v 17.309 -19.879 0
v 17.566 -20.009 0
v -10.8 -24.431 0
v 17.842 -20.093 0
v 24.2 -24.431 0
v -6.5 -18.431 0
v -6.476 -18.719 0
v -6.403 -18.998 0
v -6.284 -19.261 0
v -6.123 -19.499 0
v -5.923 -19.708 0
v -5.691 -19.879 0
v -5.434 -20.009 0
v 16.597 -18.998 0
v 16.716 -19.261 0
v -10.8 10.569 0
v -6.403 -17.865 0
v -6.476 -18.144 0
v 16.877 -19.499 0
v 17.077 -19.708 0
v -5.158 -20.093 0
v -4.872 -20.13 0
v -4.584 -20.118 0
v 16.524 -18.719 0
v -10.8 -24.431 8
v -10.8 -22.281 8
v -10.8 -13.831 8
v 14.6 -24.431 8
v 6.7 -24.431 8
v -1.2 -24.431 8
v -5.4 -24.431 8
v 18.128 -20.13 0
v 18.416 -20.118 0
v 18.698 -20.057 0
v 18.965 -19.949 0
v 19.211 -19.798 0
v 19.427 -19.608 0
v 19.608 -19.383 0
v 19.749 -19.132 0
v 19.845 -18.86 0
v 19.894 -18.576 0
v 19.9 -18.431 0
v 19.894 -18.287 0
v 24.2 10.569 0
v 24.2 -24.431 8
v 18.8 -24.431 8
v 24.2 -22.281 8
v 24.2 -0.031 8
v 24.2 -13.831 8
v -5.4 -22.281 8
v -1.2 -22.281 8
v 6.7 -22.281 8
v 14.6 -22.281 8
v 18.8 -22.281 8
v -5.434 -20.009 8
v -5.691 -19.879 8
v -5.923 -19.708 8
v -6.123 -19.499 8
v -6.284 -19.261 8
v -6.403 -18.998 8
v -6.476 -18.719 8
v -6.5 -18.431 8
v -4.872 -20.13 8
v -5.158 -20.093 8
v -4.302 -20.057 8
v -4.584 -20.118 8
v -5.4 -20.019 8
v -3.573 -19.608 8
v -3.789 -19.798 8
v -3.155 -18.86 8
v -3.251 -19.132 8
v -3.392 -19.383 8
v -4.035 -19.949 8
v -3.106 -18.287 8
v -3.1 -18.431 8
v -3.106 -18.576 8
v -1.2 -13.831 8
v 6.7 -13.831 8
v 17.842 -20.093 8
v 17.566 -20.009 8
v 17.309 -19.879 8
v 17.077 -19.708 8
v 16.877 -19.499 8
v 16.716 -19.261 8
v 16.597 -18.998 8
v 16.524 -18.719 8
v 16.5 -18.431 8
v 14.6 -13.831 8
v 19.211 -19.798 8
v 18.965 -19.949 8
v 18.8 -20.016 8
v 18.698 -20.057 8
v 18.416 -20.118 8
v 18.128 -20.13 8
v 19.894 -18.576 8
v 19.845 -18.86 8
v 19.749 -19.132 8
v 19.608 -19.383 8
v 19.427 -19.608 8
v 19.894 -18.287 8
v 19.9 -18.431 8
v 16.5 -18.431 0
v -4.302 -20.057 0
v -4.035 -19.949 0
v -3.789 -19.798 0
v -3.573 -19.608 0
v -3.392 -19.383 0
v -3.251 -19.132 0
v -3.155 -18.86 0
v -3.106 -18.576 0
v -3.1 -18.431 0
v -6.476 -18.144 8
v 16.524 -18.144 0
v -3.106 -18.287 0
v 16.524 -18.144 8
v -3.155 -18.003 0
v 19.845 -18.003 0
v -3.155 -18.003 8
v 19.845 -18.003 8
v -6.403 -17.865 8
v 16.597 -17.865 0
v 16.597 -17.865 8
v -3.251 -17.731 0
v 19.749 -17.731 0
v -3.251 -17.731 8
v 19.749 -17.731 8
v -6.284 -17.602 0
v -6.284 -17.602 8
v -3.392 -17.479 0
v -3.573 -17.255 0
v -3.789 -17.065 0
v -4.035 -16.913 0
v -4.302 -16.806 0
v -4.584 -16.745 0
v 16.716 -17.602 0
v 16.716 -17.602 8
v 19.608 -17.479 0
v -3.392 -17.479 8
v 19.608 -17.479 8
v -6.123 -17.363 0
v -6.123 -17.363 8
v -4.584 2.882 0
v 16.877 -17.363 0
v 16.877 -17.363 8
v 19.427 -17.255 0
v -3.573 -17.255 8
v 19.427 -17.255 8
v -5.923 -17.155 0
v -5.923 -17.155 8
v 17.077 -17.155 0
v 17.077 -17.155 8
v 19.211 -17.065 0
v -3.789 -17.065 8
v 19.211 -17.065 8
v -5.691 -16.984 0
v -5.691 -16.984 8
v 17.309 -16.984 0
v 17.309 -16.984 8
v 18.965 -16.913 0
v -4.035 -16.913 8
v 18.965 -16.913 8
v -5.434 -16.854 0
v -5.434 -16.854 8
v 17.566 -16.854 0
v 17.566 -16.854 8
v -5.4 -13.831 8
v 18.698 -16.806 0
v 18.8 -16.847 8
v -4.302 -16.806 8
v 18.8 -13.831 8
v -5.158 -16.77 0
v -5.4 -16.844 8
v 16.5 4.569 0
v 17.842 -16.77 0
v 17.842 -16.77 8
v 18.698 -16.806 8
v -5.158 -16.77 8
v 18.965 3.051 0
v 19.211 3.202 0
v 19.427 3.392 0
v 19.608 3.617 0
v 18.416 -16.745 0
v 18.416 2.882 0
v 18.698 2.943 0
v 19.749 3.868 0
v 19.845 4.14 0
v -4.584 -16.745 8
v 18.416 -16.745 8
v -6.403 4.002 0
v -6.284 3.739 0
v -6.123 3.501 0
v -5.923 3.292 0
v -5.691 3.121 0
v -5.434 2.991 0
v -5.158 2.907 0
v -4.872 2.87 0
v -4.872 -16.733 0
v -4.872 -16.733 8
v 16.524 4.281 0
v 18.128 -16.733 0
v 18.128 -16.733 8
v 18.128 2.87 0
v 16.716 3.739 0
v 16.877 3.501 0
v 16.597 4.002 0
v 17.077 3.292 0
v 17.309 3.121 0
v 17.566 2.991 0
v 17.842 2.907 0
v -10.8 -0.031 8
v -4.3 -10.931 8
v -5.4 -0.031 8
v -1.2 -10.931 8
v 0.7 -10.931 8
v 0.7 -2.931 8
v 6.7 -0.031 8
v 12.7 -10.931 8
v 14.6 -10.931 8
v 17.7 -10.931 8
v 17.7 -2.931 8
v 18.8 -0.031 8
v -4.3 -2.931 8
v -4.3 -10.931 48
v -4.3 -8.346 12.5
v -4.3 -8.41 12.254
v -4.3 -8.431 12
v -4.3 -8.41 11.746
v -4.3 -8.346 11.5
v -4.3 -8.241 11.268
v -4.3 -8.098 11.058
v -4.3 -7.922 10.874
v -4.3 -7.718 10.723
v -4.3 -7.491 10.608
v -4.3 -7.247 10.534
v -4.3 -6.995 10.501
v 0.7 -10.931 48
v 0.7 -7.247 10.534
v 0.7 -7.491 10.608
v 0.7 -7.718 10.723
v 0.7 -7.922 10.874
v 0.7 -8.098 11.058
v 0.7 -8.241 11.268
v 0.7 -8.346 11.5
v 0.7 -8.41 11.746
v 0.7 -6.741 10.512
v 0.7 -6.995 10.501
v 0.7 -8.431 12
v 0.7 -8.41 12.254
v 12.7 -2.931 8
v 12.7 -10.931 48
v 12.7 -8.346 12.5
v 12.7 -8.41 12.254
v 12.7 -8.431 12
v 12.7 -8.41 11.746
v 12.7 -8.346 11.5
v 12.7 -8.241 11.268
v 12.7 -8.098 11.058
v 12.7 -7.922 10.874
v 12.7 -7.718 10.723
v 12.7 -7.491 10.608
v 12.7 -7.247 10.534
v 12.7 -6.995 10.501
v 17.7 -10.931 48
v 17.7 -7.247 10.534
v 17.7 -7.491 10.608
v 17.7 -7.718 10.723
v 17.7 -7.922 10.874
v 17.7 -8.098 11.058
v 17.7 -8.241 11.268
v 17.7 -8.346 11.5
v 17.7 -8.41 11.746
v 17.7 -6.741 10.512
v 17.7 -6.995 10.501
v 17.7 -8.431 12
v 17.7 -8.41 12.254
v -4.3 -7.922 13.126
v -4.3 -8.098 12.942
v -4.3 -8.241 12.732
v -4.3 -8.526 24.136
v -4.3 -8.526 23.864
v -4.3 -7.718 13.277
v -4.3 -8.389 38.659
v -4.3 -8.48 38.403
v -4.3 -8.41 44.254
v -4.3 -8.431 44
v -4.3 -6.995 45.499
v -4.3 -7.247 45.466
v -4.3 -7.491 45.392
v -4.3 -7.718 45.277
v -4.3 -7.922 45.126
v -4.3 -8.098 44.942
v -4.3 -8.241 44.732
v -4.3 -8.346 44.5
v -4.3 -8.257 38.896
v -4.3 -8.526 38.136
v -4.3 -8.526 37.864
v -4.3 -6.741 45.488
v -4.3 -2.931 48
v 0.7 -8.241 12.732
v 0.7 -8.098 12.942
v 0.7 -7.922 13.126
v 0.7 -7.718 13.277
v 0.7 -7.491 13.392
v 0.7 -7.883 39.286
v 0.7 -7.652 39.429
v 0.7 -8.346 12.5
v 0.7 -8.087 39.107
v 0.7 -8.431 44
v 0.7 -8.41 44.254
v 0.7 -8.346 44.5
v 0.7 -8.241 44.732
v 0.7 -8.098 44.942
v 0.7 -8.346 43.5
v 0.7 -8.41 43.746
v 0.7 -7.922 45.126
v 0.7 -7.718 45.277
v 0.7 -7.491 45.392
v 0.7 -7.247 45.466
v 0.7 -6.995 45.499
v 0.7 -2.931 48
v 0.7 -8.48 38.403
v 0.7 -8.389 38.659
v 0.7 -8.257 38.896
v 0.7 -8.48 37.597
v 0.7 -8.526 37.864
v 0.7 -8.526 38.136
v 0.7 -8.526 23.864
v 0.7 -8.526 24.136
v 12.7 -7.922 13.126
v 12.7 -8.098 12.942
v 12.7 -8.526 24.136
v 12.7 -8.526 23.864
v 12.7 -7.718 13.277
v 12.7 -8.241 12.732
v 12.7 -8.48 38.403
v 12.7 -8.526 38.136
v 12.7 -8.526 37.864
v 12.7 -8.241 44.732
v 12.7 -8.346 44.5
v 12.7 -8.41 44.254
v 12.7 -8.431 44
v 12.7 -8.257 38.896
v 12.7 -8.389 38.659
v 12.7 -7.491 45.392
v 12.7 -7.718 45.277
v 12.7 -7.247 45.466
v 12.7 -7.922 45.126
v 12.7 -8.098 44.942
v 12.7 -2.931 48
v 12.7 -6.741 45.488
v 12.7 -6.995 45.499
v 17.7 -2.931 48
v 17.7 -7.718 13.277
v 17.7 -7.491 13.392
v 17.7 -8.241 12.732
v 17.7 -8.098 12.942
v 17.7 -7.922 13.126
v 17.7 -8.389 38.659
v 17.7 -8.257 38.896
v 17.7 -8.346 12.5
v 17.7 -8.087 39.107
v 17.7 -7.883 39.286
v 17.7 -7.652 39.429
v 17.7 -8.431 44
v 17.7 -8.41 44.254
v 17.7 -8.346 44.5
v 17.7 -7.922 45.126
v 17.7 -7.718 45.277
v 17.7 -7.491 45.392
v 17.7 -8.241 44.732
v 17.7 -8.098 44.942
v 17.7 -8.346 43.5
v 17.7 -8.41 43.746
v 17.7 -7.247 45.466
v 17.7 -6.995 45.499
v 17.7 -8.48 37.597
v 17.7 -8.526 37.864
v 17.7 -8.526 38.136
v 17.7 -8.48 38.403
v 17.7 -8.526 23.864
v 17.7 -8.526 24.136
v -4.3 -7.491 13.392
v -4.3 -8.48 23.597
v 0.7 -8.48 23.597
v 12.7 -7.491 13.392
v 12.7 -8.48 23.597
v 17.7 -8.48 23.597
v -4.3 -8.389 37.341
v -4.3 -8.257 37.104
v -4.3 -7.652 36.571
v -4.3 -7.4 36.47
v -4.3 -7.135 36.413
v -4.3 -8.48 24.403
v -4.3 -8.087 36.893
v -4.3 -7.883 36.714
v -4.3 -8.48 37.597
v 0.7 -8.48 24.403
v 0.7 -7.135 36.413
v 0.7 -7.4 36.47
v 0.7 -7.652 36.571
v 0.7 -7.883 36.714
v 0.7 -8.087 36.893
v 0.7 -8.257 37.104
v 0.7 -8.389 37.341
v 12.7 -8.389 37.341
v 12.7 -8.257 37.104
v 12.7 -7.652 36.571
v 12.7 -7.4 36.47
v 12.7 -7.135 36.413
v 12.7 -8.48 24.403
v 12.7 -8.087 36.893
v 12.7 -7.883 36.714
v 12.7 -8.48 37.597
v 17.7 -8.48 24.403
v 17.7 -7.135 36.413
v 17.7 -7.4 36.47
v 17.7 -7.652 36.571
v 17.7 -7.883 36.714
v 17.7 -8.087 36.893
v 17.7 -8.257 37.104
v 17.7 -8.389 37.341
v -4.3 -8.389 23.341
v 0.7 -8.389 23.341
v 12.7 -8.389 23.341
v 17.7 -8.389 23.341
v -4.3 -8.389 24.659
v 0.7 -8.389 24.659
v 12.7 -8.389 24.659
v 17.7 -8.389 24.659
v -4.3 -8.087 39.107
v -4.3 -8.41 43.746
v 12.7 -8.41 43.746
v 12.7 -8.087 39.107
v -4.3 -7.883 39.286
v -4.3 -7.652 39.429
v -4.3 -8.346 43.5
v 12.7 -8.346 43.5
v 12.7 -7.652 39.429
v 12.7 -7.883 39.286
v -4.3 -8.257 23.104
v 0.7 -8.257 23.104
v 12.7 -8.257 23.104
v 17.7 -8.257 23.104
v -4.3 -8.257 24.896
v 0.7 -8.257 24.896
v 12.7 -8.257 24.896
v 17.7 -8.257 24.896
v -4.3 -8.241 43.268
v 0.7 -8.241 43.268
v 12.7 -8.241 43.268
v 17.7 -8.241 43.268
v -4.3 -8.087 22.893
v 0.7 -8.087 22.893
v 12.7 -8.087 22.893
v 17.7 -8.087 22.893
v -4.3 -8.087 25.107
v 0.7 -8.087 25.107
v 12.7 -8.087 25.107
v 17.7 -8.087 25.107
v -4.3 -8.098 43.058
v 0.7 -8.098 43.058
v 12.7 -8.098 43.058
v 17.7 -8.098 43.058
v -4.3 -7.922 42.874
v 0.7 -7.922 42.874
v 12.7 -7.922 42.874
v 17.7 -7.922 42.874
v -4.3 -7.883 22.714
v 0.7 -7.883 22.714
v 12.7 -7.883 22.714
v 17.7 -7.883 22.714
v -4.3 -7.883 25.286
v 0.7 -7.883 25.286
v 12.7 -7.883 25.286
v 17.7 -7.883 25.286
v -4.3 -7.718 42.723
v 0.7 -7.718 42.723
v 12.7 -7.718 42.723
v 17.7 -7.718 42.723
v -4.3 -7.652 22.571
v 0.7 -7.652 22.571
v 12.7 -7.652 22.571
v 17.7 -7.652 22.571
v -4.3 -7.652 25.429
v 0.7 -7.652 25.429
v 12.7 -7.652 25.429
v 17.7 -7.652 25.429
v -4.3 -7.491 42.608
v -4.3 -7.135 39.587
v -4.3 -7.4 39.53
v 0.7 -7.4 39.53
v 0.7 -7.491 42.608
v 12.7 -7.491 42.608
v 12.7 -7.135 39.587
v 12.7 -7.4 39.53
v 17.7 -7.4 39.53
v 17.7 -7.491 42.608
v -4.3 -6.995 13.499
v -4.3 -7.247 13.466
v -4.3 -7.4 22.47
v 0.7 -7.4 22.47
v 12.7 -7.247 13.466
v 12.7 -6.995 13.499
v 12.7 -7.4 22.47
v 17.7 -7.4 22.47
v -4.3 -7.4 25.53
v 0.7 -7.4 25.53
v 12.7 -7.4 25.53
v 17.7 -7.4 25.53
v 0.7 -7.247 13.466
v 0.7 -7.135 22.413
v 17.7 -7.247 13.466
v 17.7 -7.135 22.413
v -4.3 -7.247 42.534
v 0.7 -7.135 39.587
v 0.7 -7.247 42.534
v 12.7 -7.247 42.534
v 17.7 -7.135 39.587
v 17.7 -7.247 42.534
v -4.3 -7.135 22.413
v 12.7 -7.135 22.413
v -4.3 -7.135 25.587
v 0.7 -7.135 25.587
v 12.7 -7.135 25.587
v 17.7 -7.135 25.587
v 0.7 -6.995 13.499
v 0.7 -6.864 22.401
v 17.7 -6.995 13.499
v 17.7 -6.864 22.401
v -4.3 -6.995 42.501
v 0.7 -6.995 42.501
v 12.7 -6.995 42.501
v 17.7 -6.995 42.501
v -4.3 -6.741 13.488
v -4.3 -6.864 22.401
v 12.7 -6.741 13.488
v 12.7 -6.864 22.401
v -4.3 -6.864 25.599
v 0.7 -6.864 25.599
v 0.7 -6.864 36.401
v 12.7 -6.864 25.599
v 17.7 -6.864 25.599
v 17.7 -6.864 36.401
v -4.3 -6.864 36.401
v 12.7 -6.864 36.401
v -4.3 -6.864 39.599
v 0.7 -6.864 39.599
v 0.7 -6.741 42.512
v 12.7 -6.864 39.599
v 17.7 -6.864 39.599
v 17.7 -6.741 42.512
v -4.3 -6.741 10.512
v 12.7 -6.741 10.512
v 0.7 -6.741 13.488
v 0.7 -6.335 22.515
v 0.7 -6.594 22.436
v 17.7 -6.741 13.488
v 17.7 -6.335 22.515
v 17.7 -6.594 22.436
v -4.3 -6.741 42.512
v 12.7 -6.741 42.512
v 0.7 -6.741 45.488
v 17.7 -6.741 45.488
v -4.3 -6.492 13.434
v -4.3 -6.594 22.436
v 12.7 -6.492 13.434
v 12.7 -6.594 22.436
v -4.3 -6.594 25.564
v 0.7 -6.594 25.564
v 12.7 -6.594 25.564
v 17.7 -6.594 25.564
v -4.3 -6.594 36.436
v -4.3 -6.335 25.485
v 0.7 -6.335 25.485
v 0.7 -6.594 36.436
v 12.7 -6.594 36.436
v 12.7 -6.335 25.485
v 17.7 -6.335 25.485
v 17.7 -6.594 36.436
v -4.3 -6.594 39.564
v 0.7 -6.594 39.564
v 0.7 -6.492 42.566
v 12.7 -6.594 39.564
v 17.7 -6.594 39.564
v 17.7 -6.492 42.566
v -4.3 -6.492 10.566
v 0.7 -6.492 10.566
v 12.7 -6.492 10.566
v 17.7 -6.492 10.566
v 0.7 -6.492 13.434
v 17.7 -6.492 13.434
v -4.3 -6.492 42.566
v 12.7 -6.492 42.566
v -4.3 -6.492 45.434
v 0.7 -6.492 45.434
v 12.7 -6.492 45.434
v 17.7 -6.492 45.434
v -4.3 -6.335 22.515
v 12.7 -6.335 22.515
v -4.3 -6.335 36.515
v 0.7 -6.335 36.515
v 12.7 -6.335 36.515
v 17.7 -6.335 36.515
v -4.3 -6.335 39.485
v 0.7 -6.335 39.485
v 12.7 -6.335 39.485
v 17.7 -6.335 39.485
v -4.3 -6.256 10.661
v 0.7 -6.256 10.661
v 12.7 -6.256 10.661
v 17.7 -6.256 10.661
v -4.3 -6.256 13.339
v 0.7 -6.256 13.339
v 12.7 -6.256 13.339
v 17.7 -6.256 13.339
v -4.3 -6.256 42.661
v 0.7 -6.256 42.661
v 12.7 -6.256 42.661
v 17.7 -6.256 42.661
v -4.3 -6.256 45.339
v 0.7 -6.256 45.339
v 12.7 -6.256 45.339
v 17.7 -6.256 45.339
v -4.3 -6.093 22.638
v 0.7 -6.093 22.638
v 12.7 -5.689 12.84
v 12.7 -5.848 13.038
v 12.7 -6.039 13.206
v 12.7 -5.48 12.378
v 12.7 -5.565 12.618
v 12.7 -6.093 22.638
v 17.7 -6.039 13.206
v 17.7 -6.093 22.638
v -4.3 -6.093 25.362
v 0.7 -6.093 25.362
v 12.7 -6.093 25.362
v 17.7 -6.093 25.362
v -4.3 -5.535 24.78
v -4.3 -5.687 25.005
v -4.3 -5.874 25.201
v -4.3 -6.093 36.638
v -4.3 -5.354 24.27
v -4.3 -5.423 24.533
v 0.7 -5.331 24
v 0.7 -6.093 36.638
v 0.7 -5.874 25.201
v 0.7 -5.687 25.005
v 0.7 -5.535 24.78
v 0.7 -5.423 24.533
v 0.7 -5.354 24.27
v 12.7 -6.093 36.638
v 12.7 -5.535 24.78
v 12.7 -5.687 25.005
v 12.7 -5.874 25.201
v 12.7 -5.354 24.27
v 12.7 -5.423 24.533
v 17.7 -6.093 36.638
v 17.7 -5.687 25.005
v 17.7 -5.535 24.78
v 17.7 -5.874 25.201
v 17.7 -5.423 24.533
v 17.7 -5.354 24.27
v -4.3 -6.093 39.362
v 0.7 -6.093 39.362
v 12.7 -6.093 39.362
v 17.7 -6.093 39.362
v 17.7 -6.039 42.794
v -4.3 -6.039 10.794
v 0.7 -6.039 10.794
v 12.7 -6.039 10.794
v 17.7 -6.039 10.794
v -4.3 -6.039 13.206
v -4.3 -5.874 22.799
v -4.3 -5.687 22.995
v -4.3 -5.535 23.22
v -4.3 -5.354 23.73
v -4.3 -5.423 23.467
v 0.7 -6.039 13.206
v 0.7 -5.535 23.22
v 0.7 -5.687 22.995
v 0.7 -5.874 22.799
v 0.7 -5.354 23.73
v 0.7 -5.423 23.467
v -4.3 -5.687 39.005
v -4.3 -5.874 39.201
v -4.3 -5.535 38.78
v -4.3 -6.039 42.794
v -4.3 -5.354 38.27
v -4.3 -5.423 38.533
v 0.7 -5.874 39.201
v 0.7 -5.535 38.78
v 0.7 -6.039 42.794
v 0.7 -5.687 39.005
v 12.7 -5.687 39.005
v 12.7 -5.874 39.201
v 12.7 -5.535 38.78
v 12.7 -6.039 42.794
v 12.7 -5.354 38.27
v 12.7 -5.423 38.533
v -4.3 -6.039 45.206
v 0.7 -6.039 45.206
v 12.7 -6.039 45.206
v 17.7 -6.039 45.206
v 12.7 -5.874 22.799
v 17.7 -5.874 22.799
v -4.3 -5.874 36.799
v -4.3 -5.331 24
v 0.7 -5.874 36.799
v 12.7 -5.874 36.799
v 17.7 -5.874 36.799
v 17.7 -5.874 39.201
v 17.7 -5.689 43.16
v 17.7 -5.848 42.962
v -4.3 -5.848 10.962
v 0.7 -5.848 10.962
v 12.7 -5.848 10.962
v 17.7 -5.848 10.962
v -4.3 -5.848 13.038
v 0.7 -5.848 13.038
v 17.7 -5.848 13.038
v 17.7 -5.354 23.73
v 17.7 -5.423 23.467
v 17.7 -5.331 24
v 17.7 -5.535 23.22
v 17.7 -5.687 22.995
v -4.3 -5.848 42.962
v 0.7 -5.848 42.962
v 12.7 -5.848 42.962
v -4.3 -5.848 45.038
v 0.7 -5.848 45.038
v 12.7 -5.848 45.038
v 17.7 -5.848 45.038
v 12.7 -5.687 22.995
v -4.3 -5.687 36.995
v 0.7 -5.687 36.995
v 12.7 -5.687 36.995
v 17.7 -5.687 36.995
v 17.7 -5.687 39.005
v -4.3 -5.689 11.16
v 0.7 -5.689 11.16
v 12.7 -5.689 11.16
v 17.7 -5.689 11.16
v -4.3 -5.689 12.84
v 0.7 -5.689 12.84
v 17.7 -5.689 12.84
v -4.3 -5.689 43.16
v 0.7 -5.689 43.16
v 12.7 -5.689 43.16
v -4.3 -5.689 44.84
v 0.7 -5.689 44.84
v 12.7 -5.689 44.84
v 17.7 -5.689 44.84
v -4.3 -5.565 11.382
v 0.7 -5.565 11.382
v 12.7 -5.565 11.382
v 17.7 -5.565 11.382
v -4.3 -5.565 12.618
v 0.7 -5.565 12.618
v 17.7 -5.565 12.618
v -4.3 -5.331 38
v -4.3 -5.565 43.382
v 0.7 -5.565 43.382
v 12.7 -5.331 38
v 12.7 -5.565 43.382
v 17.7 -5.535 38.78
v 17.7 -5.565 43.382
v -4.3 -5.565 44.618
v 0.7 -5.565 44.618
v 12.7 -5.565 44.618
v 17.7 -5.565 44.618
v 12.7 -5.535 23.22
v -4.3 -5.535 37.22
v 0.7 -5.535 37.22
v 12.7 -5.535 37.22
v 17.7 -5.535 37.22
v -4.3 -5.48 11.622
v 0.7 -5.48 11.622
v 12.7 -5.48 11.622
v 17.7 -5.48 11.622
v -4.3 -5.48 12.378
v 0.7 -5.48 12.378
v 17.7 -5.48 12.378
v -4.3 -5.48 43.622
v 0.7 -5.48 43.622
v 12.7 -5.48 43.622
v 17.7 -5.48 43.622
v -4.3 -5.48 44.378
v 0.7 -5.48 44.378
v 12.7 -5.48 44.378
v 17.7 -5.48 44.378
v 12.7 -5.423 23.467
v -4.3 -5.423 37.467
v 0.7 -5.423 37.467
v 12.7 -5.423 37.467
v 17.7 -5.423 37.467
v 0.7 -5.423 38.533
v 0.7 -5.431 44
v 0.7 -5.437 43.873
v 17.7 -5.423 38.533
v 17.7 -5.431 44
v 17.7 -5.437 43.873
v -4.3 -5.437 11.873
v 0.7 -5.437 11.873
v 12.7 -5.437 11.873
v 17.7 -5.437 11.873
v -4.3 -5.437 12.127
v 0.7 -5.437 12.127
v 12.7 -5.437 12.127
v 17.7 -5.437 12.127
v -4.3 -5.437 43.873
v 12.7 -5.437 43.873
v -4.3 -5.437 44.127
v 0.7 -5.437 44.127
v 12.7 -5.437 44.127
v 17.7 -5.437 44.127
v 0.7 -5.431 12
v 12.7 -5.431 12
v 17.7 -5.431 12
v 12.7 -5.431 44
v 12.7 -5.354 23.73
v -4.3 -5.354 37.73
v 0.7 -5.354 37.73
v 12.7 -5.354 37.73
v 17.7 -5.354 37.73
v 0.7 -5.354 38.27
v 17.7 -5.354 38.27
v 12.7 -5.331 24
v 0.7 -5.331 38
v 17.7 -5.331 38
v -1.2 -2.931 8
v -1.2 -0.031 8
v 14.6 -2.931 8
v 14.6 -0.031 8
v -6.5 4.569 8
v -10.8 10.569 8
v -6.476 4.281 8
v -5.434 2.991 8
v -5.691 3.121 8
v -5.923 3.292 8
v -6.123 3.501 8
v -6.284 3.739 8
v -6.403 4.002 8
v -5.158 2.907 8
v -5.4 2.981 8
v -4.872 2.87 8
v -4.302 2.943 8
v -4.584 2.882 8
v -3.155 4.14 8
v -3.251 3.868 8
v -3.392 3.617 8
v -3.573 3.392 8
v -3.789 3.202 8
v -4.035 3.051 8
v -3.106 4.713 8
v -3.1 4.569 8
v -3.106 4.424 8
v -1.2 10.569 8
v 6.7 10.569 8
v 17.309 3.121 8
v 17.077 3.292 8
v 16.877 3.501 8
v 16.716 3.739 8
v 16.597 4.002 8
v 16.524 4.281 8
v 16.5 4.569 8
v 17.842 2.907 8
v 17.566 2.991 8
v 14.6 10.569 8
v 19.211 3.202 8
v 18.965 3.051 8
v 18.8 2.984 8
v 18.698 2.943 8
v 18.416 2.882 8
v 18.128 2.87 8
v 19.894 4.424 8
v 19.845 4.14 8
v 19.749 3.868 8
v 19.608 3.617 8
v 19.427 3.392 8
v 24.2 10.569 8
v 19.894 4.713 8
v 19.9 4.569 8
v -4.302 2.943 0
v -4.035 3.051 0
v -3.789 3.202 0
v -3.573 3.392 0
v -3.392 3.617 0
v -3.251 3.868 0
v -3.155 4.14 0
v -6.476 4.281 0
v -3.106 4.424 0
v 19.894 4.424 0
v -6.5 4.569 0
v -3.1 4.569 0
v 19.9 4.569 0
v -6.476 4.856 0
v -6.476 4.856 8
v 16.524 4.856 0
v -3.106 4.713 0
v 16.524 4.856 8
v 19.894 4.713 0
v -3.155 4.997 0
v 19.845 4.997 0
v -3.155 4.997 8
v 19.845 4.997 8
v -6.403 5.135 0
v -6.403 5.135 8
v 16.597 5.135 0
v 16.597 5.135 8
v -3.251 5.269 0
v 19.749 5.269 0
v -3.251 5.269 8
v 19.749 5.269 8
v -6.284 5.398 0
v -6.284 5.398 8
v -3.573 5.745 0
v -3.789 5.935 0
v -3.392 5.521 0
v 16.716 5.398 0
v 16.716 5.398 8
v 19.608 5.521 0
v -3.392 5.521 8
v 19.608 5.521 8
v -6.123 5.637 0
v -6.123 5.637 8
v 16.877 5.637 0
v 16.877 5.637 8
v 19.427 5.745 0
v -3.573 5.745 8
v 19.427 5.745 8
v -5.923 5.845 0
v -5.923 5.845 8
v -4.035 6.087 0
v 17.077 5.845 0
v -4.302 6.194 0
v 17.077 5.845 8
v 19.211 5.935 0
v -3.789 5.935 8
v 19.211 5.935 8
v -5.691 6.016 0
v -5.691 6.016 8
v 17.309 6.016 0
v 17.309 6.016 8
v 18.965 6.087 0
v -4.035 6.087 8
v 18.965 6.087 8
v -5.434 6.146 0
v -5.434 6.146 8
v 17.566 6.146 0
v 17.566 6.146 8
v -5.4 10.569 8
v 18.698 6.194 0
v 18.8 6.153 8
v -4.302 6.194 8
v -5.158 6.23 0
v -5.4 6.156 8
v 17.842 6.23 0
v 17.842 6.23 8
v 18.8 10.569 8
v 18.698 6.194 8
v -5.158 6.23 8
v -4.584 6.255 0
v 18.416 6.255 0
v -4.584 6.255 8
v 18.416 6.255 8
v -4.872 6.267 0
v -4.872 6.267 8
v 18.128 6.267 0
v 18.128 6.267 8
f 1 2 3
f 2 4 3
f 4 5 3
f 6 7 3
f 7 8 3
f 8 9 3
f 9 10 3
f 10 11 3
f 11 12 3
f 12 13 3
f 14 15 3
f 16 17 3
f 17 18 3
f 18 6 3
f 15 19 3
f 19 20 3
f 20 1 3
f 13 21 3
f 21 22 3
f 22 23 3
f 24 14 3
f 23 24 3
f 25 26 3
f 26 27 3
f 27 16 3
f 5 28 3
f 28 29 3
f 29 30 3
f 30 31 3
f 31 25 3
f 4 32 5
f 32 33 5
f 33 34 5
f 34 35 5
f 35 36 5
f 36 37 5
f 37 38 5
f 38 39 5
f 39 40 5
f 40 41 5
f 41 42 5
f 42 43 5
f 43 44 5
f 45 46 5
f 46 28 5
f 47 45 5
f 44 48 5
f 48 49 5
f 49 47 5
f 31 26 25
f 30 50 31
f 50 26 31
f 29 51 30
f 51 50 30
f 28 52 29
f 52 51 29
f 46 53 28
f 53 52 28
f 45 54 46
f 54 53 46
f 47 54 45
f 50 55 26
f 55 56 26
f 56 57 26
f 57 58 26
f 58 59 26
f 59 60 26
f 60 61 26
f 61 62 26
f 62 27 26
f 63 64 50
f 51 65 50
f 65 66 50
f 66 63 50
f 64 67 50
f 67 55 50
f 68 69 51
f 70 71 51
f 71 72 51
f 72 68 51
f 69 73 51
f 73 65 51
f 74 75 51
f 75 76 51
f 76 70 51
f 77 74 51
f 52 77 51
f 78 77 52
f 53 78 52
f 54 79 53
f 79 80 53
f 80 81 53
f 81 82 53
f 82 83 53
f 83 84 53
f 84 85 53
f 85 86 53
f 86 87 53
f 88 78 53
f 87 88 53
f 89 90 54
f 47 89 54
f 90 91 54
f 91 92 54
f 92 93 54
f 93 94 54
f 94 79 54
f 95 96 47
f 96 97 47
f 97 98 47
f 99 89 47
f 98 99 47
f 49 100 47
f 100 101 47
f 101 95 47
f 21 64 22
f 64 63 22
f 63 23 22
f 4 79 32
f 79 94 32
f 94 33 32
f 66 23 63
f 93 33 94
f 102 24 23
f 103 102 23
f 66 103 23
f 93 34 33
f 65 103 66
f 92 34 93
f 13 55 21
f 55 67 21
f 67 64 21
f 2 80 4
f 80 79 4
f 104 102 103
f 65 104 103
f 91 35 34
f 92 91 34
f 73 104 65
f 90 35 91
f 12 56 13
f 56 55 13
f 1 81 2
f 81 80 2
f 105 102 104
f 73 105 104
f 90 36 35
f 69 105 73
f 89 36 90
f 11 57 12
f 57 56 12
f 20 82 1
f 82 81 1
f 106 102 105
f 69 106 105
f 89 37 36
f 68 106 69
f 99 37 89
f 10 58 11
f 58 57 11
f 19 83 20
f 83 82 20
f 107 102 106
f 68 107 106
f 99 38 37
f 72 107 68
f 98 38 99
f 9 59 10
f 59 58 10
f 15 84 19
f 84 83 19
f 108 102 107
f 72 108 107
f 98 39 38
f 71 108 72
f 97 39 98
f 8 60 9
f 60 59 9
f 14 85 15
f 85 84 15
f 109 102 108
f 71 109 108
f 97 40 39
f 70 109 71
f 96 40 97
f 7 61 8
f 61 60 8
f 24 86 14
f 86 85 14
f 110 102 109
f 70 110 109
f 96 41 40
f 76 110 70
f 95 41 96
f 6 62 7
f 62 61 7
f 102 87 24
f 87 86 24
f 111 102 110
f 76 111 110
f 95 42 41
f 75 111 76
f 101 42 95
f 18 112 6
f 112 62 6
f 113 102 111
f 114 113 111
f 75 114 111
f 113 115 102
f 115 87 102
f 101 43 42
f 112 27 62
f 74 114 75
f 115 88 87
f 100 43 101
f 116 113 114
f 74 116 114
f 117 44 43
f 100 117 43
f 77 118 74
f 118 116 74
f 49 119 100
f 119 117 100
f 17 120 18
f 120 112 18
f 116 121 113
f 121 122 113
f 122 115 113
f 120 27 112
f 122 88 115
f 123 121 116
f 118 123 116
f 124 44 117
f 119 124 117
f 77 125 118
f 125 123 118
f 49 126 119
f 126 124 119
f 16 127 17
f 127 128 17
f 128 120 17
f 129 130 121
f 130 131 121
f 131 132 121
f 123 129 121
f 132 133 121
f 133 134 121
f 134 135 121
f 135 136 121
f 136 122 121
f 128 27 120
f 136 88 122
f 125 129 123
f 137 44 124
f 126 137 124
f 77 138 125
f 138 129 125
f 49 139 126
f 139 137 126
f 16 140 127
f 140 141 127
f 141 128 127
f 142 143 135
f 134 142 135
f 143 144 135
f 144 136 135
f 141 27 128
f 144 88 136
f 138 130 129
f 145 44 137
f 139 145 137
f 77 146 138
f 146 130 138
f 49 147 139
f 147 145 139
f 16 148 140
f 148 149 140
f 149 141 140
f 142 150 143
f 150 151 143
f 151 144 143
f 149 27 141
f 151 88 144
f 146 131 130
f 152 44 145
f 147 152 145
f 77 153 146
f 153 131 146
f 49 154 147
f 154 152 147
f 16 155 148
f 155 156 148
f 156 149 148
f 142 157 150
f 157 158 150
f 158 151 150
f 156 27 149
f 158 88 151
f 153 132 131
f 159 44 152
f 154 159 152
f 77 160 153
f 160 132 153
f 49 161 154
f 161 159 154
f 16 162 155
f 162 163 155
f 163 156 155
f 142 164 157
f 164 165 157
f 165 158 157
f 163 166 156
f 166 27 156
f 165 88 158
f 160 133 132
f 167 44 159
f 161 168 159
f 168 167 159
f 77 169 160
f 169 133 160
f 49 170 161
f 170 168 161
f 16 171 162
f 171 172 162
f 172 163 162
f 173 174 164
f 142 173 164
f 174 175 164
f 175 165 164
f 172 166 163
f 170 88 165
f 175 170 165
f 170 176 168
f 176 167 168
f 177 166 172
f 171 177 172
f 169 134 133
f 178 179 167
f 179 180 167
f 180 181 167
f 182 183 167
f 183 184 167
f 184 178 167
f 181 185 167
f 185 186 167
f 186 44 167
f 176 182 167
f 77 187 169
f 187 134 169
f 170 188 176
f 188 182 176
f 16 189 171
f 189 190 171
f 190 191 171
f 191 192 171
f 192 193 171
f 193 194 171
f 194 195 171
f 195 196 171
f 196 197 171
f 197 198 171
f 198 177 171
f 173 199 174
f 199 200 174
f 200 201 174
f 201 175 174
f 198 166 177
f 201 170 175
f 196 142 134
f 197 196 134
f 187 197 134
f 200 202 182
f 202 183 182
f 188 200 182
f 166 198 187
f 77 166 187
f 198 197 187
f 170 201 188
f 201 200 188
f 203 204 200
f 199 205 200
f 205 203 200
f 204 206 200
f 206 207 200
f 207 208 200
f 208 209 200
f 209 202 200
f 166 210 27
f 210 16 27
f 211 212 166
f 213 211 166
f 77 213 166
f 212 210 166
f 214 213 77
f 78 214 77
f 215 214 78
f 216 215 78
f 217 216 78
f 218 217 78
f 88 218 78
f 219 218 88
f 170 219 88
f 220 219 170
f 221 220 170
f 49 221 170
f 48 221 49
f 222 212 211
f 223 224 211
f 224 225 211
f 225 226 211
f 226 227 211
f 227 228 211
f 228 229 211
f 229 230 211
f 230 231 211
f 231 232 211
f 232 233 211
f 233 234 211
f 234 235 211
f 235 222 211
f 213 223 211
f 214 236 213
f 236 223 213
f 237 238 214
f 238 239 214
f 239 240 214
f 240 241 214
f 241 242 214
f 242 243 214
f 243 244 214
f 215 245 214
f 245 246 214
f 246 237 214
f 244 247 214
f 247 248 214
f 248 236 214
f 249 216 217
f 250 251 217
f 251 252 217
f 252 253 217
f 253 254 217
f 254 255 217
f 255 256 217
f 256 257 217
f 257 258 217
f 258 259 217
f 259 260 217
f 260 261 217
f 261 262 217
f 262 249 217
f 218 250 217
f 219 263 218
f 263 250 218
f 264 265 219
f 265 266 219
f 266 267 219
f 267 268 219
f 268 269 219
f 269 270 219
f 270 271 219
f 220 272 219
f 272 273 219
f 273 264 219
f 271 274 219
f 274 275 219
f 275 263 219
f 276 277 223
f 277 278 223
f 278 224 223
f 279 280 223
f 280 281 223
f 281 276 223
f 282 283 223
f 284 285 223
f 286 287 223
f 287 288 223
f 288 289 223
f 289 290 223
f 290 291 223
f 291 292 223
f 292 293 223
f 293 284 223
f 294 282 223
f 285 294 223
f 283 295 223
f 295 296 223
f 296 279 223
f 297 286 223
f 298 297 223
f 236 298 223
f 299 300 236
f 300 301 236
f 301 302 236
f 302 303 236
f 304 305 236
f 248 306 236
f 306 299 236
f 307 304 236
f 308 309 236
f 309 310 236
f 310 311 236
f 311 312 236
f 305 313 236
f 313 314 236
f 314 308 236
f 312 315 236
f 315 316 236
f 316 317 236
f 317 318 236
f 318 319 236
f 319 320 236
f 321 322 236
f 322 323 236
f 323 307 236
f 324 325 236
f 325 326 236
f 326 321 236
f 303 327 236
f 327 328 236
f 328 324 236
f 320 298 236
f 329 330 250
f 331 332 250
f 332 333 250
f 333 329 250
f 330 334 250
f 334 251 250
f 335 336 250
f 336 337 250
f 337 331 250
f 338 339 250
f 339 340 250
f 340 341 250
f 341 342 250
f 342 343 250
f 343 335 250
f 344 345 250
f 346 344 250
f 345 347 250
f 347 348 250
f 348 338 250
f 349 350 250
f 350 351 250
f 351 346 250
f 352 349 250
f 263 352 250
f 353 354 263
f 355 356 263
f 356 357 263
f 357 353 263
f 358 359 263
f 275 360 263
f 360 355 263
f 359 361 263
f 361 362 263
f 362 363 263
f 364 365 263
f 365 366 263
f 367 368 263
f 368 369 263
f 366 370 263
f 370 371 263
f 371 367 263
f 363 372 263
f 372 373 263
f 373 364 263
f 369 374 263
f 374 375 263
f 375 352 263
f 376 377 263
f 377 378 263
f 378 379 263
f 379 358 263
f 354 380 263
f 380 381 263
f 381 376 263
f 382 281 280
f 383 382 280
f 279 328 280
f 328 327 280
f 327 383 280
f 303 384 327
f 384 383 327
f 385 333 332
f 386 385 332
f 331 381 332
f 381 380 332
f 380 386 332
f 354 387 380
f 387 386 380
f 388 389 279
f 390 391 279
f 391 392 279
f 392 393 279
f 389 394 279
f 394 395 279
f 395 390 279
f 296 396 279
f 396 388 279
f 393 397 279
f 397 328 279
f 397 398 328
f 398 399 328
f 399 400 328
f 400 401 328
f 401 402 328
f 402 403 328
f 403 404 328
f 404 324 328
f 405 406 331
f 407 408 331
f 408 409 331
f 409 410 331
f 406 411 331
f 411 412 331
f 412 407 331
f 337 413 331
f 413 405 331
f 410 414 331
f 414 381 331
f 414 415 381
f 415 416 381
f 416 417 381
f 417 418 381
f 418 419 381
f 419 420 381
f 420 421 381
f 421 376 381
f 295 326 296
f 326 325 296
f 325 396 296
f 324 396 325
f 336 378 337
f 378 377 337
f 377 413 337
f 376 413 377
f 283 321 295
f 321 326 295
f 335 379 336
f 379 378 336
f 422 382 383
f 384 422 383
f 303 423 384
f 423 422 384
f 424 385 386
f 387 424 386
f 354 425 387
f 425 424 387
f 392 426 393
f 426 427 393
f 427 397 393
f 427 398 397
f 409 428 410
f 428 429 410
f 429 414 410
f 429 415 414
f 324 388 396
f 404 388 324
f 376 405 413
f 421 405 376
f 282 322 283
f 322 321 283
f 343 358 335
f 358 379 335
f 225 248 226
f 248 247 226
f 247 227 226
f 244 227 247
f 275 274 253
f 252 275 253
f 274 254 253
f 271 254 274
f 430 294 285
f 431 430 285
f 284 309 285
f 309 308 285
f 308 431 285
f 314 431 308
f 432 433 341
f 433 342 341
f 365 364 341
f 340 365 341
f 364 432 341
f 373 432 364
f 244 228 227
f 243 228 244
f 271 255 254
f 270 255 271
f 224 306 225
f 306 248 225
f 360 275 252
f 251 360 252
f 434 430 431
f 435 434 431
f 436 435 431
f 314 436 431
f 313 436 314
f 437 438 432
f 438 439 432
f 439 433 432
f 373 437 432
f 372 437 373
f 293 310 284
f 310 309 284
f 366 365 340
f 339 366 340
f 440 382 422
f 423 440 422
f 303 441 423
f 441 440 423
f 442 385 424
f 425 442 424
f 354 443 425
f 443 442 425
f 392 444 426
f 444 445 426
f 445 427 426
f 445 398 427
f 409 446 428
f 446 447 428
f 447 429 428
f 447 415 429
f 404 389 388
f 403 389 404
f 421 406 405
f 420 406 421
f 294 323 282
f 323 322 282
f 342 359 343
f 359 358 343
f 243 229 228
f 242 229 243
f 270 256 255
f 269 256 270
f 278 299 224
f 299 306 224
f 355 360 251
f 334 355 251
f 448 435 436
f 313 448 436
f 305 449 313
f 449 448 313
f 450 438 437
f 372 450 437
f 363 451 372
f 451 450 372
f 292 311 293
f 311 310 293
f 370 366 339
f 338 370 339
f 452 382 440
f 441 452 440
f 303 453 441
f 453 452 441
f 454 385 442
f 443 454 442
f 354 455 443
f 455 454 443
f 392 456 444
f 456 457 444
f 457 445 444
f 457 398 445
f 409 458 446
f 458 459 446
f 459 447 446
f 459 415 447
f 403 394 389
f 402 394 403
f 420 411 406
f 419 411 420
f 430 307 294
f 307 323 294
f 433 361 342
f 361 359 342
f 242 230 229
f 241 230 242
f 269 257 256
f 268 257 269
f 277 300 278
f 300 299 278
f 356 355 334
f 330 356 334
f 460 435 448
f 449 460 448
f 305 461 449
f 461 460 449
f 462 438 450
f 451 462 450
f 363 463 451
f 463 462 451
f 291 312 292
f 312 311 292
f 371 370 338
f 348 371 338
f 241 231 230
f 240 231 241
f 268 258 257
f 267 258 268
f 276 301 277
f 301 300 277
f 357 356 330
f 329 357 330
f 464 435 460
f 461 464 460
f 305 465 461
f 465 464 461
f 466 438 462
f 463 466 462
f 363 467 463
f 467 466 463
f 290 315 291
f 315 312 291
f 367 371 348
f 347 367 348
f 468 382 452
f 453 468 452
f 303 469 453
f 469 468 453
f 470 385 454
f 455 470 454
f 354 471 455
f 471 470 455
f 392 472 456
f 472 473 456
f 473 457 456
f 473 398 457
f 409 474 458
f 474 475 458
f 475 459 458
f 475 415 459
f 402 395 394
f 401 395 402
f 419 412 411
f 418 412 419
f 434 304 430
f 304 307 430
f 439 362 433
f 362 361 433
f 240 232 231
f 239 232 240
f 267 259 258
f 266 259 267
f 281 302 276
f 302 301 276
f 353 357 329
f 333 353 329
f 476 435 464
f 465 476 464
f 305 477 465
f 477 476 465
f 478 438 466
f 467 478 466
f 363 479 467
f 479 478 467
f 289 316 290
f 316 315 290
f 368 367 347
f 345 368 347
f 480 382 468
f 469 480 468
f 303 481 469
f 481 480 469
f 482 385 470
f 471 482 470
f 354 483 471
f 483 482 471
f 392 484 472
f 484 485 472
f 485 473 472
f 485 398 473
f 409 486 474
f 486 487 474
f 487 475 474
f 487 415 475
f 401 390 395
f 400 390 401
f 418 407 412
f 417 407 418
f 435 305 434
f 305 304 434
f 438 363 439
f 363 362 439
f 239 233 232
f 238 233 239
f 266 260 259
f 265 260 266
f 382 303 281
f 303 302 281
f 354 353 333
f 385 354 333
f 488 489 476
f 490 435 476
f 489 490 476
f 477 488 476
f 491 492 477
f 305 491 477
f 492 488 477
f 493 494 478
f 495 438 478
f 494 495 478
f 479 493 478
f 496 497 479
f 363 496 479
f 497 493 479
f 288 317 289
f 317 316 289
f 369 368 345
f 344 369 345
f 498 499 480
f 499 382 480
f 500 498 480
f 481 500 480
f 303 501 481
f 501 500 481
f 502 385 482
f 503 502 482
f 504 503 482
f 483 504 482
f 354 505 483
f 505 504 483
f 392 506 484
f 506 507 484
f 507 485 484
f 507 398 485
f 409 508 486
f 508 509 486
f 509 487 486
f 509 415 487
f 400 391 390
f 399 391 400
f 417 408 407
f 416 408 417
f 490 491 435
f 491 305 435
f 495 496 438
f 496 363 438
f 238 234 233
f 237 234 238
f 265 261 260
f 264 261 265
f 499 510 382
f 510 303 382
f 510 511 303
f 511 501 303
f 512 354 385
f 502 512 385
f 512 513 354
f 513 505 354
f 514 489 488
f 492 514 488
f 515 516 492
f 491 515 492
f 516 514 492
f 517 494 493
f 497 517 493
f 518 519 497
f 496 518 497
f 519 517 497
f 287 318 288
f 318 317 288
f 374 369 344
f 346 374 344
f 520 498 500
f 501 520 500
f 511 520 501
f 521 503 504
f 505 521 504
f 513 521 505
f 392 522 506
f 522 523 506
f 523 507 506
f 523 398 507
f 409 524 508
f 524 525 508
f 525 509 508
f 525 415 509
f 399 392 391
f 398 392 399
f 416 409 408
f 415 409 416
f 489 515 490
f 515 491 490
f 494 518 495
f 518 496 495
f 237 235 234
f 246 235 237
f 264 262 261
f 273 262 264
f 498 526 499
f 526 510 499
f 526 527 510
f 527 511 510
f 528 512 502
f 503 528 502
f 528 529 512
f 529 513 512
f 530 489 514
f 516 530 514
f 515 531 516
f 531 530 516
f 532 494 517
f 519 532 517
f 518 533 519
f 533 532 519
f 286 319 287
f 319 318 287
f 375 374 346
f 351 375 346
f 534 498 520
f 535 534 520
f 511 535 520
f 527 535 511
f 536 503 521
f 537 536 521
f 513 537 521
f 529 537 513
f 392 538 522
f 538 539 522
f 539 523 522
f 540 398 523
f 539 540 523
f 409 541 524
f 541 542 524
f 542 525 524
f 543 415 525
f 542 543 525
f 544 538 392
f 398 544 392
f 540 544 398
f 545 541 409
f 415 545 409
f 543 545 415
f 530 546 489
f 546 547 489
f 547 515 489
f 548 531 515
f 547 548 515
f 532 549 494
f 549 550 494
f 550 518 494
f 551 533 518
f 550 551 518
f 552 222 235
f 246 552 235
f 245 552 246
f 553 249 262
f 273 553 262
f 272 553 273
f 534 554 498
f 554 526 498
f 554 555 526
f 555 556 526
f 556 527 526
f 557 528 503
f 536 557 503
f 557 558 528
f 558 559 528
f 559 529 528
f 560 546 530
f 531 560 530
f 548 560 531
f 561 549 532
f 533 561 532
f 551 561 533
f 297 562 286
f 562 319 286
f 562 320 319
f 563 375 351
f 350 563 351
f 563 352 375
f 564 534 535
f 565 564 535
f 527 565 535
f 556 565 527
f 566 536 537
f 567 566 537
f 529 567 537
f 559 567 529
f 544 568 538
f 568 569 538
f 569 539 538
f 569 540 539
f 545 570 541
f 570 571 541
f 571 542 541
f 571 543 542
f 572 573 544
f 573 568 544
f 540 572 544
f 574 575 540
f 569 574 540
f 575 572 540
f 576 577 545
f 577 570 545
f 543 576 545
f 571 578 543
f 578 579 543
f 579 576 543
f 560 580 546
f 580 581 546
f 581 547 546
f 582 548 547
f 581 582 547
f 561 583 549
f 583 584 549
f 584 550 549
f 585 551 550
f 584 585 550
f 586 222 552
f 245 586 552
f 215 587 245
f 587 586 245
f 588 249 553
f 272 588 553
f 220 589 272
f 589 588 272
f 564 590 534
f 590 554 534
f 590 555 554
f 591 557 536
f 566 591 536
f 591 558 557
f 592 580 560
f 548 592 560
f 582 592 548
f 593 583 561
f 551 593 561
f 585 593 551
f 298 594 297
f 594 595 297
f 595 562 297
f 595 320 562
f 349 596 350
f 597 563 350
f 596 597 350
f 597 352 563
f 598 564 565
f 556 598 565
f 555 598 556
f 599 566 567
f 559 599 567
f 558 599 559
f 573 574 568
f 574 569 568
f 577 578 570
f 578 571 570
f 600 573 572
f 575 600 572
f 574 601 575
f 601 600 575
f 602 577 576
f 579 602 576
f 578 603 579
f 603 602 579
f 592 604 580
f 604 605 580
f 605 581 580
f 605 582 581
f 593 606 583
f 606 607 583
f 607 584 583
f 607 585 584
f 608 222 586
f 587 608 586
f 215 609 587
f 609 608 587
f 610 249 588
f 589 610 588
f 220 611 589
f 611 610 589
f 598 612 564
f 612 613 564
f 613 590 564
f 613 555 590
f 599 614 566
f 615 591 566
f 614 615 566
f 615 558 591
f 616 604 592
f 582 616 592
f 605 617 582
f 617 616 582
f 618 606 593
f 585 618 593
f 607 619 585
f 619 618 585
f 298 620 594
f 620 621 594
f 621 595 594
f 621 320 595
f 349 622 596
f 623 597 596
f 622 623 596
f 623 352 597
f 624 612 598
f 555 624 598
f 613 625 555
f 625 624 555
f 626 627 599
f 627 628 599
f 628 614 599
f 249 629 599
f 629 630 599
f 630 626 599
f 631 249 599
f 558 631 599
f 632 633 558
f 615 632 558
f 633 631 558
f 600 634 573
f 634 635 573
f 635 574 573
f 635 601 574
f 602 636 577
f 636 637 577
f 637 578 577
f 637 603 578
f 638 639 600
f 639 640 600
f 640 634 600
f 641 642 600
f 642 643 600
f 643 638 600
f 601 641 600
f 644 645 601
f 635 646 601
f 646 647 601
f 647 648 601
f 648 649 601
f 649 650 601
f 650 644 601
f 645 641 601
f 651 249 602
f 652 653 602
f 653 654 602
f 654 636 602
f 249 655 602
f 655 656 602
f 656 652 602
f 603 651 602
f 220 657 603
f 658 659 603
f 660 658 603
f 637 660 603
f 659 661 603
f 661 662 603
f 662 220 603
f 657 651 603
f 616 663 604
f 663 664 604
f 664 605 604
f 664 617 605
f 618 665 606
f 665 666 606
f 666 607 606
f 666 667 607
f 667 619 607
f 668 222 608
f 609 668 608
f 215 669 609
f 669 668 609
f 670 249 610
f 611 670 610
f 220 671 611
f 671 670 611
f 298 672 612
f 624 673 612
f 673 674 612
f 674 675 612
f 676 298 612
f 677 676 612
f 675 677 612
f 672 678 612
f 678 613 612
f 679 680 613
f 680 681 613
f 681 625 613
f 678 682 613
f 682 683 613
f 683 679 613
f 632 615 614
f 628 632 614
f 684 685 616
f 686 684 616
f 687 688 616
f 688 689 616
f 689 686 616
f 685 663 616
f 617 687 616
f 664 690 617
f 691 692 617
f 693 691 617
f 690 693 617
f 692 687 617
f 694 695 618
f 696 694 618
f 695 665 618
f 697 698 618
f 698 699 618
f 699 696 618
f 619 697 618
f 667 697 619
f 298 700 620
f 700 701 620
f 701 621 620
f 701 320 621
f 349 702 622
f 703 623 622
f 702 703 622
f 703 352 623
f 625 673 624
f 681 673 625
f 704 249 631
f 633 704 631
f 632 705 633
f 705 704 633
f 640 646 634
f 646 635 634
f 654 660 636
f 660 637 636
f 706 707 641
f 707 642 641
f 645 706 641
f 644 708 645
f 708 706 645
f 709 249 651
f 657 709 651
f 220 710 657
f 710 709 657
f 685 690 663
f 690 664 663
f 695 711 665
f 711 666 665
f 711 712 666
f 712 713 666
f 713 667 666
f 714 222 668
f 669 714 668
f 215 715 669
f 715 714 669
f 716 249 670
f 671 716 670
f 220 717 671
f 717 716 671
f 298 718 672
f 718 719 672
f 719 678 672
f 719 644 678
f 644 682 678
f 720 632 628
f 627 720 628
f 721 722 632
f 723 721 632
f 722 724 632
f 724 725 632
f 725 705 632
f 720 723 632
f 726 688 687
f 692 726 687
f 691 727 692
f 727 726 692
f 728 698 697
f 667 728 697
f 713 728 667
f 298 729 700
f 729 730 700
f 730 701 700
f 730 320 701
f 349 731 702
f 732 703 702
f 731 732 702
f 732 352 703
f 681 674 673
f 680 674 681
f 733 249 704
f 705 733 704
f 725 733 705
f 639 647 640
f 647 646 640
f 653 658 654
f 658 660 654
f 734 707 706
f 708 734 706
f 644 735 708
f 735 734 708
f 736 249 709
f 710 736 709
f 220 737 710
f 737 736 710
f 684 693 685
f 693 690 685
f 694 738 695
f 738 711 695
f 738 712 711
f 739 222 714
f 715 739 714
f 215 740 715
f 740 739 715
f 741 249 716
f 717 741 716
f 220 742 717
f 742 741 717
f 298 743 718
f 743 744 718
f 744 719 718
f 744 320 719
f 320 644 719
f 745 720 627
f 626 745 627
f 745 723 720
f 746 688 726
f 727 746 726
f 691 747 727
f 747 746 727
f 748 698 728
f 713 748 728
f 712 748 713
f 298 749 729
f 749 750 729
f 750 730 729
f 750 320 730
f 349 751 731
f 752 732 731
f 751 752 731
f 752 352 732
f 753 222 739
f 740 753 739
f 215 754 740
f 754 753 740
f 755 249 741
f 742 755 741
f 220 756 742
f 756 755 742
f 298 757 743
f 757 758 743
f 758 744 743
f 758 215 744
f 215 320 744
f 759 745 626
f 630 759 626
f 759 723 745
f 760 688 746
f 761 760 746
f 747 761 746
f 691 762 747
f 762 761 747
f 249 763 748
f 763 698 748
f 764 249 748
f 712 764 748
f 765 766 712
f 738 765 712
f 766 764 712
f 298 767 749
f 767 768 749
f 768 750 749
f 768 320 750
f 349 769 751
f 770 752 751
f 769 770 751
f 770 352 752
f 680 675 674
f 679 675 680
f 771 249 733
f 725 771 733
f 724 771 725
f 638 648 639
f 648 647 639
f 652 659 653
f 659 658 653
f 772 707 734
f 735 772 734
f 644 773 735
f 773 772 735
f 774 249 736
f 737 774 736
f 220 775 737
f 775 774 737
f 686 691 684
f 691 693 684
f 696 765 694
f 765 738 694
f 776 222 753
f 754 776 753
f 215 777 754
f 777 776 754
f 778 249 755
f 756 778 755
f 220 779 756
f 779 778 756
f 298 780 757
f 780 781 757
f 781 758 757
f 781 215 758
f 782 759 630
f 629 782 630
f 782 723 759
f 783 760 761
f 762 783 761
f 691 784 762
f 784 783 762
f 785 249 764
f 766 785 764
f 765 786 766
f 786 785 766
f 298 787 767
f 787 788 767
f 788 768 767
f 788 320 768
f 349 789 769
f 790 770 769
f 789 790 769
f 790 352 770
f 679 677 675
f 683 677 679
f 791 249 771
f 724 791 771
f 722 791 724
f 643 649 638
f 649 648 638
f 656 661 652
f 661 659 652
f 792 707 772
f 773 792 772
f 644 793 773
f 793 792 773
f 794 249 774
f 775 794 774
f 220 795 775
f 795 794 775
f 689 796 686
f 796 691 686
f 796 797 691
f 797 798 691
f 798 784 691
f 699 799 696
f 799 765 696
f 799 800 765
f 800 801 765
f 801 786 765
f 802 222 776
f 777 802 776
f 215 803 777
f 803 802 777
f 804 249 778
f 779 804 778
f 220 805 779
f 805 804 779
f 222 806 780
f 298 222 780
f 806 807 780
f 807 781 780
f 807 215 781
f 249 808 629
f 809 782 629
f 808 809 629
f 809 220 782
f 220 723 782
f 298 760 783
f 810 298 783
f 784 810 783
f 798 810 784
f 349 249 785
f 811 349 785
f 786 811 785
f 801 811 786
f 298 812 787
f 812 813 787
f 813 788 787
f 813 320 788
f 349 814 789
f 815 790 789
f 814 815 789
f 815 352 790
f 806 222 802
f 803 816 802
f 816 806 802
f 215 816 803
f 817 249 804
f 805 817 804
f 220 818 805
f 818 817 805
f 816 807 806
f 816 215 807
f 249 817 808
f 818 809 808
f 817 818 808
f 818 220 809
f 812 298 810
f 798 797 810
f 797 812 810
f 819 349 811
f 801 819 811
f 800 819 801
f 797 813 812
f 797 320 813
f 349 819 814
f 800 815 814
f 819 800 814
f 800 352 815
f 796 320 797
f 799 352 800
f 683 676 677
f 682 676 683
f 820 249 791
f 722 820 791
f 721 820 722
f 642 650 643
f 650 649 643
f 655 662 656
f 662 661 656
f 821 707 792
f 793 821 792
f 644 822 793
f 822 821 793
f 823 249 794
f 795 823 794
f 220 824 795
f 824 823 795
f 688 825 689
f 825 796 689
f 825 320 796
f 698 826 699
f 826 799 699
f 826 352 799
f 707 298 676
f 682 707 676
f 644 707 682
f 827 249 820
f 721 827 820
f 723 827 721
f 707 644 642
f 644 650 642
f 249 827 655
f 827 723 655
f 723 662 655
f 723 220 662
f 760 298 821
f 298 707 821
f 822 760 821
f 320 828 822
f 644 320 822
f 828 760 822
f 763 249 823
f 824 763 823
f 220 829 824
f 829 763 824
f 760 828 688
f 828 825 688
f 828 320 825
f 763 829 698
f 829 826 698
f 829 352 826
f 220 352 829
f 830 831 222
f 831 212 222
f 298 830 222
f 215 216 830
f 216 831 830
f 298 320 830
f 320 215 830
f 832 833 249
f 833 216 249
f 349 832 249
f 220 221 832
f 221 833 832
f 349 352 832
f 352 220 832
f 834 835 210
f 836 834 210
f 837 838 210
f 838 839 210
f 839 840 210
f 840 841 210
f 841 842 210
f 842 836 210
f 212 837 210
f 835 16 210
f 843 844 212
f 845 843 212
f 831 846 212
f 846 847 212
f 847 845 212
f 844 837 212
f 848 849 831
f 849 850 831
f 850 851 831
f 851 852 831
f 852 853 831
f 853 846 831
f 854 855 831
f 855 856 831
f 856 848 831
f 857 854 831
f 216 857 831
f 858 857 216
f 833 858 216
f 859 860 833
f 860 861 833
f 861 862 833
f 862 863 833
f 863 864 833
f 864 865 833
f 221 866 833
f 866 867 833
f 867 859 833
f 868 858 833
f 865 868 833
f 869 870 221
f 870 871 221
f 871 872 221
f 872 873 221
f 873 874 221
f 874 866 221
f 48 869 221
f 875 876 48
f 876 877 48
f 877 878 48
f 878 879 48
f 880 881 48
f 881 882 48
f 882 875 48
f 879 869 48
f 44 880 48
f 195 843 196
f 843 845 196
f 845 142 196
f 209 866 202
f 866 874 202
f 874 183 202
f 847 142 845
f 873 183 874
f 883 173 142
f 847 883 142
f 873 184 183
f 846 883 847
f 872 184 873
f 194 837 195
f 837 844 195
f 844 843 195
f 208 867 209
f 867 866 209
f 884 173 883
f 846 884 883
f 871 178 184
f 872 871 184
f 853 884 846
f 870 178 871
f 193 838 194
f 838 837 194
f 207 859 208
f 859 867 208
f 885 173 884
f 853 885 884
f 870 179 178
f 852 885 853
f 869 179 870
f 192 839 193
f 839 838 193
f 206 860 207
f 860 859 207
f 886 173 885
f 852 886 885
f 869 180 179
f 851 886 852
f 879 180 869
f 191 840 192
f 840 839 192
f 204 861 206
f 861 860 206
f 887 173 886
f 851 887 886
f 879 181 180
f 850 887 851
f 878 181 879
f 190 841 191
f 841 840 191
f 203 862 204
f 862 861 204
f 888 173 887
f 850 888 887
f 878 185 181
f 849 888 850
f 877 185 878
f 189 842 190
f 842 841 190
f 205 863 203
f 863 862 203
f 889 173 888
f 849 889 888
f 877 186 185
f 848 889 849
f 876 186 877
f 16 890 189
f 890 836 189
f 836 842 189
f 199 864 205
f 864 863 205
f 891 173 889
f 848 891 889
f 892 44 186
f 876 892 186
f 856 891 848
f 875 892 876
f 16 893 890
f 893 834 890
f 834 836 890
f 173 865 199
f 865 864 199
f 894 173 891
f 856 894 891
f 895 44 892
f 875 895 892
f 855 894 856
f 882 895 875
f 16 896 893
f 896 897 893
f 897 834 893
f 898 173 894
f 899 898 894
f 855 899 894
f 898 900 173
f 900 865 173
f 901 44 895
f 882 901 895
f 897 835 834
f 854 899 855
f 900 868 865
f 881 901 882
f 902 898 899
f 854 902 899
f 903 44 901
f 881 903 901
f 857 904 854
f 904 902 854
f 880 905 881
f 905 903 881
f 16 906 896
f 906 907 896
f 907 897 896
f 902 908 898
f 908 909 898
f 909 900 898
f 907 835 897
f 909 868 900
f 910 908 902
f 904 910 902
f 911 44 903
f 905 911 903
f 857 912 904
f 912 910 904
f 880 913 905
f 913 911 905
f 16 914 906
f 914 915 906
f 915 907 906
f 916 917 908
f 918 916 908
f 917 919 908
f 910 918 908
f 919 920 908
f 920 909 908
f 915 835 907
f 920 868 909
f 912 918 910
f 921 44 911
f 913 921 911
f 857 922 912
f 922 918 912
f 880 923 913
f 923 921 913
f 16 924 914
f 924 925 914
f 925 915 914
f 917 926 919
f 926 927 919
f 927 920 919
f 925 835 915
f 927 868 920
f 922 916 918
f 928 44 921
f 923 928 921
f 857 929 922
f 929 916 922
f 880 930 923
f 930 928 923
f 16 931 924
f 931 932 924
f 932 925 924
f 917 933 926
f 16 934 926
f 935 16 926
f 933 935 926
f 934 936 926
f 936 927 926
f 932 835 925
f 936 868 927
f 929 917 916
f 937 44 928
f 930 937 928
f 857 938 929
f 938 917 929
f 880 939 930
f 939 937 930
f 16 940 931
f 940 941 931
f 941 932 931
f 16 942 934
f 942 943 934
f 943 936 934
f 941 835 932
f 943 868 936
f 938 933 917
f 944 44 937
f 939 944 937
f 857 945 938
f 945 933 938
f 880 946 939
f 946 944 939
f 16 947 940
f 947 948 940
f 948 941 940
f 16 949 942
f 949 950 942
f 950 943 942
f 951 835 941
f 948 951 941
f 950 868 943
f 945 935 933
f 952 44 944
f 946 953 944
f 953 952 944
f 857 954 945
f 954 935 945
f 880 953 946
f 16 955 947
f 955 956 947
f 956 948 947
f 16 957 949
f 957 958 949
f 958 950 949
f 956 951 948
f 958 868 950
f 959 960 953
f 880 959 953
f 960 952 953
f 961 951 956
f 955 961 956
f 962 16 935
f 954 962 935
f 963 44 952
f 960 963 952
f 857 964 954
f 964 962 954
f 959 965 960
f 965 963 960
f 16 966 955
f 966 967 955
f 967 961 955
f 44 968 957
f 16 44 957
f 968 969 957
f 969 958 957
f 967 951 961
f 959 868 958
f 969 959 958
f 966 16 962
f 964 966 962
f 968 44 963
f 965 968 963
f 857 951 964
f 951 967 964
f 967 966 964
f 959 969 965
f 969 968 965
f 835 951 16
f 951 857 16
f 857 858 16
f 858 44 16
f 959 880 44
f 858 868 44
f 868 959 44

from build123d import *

# Parameters (mm, degrees)
SKETCH_1_W          = 35
SKETCH_1_H          = 35
SKETCH_1_R          = 1.7
EXTRUDE_1_DEPTH     = 8
SKETCH_2_W          = 5
SKETCH_2_H          = 8
EXTRUDE_2_DEPTH     = 40
SKETCH_3_R          = 1.6
CUT_EXTRUDE_1_DEPTH = 40
CUT_EXTRUDE_2_DEPTH = 24


with BuildPart() as part:
    # 草图1 → 凸台-拉伸1 (new body)
    with BuildSketch(Plane.XY):
        with Locations((6.7, -6.931428571)):
            Rectangle(SKETCH_1_W, SKETCH_1_H)
        with Locations((-4.8, 4.568571429)):
            Circle(SKETCH_1_R, mode=Mode.SUBTRACT)
        with Locations((18.2, 4.568571429)):
            Circle(SKETCH_1_R, mode=Mode.SUBTRACT)
        with Locations((-4.8, -18.431428571)):
            Circle(SKETCH_1_R, mode=Mode.SUBTRACT)
        with Locations((18.2, -18.431428571)):
            Circle(SKETCH_1_R, mode=Mode.SUBTRACT)
    extrude(amount=EXTRUDE_1_DEPTH)

    # 草图2 → 凸台-拉伸2 (add)
    with BuildSketch(Plane.XY.offset(8)):
        with Locations((-1.8, -6.931428571)):
            Rectangle(SKETCH_2_W, SKETCH_2_H)
        with Locations((15.2, -6.931428571)):
            Rectangle(SKETCH_2_W, SKETCH_2_H)
    extrude(amount=EXTRUDE_2_DEPTH)

    # 草图3 → 切除-拉伸1 (cut)
    with BuildSketch(Plane(origin=(17.7, 0, 0), x_dir=(0, 0, -1), z_dir=(1, 0, 0))):
        with Locations(Location((-38, -6.931428571, 0), (0, 0, 90))):
            Circle(SKETCH_3_R)
        with Locations(Location((-24, -6.931428571, 0), (0, 0, 90))):
            Circle(SKETCH_3_R)
    extrude(amount=-CUT_EXTRUDE_1_DEPTH, mode=Mode.SUBTRACT)

    # 草图5 → 切除-拉伸2 (cut)
    with BuildSketch(Plane.ZY.offset(4.3)):
        with BuildLine():
            Line((10.5, -6.931428571), (12, -6.931428571))
            Line((12, -6.931428571), (13.5, -6.931428571))
            ThreePointArc((13.5, -6.931428571), (12, -5.431428571), (10.5, -6.931428571))
        make_face()
        with BuildLine():
            Line((13.5, -6.931428571), (12, -6.931428571))
            Line((12, -6.931428571), (10.5, -6.931428571))
            ThreePointArc((10.5, -6.931428571), (12, -8.431428571), (13.5, -6.931428571))
        make_face()
        with BuildLine():
            ThreePointArc((45.5, -6.931428571), (44, -5.431428571), (42.5, -6.931428571))
            Line((42.5, -6.931428571), (44, -6.931428571))
            Line((44, -6.931428571), (45.5, -6.931428571))
        make_face()
        with BuildLine():
            Line((44, -6.931428571), (42.5, -6.931428571))
            ThreePointArc((42.5, -6.931428571), (44, -8.431428571), (45.5, -6.931428571))
            Line((45.5, -6.931428571), (44, -6.931428571))
        make_face()
    extrude(amount=-CUT_EXTRUDE_2_DEPTH, mode=Mode.SUBTRACT)


solid = part.part
